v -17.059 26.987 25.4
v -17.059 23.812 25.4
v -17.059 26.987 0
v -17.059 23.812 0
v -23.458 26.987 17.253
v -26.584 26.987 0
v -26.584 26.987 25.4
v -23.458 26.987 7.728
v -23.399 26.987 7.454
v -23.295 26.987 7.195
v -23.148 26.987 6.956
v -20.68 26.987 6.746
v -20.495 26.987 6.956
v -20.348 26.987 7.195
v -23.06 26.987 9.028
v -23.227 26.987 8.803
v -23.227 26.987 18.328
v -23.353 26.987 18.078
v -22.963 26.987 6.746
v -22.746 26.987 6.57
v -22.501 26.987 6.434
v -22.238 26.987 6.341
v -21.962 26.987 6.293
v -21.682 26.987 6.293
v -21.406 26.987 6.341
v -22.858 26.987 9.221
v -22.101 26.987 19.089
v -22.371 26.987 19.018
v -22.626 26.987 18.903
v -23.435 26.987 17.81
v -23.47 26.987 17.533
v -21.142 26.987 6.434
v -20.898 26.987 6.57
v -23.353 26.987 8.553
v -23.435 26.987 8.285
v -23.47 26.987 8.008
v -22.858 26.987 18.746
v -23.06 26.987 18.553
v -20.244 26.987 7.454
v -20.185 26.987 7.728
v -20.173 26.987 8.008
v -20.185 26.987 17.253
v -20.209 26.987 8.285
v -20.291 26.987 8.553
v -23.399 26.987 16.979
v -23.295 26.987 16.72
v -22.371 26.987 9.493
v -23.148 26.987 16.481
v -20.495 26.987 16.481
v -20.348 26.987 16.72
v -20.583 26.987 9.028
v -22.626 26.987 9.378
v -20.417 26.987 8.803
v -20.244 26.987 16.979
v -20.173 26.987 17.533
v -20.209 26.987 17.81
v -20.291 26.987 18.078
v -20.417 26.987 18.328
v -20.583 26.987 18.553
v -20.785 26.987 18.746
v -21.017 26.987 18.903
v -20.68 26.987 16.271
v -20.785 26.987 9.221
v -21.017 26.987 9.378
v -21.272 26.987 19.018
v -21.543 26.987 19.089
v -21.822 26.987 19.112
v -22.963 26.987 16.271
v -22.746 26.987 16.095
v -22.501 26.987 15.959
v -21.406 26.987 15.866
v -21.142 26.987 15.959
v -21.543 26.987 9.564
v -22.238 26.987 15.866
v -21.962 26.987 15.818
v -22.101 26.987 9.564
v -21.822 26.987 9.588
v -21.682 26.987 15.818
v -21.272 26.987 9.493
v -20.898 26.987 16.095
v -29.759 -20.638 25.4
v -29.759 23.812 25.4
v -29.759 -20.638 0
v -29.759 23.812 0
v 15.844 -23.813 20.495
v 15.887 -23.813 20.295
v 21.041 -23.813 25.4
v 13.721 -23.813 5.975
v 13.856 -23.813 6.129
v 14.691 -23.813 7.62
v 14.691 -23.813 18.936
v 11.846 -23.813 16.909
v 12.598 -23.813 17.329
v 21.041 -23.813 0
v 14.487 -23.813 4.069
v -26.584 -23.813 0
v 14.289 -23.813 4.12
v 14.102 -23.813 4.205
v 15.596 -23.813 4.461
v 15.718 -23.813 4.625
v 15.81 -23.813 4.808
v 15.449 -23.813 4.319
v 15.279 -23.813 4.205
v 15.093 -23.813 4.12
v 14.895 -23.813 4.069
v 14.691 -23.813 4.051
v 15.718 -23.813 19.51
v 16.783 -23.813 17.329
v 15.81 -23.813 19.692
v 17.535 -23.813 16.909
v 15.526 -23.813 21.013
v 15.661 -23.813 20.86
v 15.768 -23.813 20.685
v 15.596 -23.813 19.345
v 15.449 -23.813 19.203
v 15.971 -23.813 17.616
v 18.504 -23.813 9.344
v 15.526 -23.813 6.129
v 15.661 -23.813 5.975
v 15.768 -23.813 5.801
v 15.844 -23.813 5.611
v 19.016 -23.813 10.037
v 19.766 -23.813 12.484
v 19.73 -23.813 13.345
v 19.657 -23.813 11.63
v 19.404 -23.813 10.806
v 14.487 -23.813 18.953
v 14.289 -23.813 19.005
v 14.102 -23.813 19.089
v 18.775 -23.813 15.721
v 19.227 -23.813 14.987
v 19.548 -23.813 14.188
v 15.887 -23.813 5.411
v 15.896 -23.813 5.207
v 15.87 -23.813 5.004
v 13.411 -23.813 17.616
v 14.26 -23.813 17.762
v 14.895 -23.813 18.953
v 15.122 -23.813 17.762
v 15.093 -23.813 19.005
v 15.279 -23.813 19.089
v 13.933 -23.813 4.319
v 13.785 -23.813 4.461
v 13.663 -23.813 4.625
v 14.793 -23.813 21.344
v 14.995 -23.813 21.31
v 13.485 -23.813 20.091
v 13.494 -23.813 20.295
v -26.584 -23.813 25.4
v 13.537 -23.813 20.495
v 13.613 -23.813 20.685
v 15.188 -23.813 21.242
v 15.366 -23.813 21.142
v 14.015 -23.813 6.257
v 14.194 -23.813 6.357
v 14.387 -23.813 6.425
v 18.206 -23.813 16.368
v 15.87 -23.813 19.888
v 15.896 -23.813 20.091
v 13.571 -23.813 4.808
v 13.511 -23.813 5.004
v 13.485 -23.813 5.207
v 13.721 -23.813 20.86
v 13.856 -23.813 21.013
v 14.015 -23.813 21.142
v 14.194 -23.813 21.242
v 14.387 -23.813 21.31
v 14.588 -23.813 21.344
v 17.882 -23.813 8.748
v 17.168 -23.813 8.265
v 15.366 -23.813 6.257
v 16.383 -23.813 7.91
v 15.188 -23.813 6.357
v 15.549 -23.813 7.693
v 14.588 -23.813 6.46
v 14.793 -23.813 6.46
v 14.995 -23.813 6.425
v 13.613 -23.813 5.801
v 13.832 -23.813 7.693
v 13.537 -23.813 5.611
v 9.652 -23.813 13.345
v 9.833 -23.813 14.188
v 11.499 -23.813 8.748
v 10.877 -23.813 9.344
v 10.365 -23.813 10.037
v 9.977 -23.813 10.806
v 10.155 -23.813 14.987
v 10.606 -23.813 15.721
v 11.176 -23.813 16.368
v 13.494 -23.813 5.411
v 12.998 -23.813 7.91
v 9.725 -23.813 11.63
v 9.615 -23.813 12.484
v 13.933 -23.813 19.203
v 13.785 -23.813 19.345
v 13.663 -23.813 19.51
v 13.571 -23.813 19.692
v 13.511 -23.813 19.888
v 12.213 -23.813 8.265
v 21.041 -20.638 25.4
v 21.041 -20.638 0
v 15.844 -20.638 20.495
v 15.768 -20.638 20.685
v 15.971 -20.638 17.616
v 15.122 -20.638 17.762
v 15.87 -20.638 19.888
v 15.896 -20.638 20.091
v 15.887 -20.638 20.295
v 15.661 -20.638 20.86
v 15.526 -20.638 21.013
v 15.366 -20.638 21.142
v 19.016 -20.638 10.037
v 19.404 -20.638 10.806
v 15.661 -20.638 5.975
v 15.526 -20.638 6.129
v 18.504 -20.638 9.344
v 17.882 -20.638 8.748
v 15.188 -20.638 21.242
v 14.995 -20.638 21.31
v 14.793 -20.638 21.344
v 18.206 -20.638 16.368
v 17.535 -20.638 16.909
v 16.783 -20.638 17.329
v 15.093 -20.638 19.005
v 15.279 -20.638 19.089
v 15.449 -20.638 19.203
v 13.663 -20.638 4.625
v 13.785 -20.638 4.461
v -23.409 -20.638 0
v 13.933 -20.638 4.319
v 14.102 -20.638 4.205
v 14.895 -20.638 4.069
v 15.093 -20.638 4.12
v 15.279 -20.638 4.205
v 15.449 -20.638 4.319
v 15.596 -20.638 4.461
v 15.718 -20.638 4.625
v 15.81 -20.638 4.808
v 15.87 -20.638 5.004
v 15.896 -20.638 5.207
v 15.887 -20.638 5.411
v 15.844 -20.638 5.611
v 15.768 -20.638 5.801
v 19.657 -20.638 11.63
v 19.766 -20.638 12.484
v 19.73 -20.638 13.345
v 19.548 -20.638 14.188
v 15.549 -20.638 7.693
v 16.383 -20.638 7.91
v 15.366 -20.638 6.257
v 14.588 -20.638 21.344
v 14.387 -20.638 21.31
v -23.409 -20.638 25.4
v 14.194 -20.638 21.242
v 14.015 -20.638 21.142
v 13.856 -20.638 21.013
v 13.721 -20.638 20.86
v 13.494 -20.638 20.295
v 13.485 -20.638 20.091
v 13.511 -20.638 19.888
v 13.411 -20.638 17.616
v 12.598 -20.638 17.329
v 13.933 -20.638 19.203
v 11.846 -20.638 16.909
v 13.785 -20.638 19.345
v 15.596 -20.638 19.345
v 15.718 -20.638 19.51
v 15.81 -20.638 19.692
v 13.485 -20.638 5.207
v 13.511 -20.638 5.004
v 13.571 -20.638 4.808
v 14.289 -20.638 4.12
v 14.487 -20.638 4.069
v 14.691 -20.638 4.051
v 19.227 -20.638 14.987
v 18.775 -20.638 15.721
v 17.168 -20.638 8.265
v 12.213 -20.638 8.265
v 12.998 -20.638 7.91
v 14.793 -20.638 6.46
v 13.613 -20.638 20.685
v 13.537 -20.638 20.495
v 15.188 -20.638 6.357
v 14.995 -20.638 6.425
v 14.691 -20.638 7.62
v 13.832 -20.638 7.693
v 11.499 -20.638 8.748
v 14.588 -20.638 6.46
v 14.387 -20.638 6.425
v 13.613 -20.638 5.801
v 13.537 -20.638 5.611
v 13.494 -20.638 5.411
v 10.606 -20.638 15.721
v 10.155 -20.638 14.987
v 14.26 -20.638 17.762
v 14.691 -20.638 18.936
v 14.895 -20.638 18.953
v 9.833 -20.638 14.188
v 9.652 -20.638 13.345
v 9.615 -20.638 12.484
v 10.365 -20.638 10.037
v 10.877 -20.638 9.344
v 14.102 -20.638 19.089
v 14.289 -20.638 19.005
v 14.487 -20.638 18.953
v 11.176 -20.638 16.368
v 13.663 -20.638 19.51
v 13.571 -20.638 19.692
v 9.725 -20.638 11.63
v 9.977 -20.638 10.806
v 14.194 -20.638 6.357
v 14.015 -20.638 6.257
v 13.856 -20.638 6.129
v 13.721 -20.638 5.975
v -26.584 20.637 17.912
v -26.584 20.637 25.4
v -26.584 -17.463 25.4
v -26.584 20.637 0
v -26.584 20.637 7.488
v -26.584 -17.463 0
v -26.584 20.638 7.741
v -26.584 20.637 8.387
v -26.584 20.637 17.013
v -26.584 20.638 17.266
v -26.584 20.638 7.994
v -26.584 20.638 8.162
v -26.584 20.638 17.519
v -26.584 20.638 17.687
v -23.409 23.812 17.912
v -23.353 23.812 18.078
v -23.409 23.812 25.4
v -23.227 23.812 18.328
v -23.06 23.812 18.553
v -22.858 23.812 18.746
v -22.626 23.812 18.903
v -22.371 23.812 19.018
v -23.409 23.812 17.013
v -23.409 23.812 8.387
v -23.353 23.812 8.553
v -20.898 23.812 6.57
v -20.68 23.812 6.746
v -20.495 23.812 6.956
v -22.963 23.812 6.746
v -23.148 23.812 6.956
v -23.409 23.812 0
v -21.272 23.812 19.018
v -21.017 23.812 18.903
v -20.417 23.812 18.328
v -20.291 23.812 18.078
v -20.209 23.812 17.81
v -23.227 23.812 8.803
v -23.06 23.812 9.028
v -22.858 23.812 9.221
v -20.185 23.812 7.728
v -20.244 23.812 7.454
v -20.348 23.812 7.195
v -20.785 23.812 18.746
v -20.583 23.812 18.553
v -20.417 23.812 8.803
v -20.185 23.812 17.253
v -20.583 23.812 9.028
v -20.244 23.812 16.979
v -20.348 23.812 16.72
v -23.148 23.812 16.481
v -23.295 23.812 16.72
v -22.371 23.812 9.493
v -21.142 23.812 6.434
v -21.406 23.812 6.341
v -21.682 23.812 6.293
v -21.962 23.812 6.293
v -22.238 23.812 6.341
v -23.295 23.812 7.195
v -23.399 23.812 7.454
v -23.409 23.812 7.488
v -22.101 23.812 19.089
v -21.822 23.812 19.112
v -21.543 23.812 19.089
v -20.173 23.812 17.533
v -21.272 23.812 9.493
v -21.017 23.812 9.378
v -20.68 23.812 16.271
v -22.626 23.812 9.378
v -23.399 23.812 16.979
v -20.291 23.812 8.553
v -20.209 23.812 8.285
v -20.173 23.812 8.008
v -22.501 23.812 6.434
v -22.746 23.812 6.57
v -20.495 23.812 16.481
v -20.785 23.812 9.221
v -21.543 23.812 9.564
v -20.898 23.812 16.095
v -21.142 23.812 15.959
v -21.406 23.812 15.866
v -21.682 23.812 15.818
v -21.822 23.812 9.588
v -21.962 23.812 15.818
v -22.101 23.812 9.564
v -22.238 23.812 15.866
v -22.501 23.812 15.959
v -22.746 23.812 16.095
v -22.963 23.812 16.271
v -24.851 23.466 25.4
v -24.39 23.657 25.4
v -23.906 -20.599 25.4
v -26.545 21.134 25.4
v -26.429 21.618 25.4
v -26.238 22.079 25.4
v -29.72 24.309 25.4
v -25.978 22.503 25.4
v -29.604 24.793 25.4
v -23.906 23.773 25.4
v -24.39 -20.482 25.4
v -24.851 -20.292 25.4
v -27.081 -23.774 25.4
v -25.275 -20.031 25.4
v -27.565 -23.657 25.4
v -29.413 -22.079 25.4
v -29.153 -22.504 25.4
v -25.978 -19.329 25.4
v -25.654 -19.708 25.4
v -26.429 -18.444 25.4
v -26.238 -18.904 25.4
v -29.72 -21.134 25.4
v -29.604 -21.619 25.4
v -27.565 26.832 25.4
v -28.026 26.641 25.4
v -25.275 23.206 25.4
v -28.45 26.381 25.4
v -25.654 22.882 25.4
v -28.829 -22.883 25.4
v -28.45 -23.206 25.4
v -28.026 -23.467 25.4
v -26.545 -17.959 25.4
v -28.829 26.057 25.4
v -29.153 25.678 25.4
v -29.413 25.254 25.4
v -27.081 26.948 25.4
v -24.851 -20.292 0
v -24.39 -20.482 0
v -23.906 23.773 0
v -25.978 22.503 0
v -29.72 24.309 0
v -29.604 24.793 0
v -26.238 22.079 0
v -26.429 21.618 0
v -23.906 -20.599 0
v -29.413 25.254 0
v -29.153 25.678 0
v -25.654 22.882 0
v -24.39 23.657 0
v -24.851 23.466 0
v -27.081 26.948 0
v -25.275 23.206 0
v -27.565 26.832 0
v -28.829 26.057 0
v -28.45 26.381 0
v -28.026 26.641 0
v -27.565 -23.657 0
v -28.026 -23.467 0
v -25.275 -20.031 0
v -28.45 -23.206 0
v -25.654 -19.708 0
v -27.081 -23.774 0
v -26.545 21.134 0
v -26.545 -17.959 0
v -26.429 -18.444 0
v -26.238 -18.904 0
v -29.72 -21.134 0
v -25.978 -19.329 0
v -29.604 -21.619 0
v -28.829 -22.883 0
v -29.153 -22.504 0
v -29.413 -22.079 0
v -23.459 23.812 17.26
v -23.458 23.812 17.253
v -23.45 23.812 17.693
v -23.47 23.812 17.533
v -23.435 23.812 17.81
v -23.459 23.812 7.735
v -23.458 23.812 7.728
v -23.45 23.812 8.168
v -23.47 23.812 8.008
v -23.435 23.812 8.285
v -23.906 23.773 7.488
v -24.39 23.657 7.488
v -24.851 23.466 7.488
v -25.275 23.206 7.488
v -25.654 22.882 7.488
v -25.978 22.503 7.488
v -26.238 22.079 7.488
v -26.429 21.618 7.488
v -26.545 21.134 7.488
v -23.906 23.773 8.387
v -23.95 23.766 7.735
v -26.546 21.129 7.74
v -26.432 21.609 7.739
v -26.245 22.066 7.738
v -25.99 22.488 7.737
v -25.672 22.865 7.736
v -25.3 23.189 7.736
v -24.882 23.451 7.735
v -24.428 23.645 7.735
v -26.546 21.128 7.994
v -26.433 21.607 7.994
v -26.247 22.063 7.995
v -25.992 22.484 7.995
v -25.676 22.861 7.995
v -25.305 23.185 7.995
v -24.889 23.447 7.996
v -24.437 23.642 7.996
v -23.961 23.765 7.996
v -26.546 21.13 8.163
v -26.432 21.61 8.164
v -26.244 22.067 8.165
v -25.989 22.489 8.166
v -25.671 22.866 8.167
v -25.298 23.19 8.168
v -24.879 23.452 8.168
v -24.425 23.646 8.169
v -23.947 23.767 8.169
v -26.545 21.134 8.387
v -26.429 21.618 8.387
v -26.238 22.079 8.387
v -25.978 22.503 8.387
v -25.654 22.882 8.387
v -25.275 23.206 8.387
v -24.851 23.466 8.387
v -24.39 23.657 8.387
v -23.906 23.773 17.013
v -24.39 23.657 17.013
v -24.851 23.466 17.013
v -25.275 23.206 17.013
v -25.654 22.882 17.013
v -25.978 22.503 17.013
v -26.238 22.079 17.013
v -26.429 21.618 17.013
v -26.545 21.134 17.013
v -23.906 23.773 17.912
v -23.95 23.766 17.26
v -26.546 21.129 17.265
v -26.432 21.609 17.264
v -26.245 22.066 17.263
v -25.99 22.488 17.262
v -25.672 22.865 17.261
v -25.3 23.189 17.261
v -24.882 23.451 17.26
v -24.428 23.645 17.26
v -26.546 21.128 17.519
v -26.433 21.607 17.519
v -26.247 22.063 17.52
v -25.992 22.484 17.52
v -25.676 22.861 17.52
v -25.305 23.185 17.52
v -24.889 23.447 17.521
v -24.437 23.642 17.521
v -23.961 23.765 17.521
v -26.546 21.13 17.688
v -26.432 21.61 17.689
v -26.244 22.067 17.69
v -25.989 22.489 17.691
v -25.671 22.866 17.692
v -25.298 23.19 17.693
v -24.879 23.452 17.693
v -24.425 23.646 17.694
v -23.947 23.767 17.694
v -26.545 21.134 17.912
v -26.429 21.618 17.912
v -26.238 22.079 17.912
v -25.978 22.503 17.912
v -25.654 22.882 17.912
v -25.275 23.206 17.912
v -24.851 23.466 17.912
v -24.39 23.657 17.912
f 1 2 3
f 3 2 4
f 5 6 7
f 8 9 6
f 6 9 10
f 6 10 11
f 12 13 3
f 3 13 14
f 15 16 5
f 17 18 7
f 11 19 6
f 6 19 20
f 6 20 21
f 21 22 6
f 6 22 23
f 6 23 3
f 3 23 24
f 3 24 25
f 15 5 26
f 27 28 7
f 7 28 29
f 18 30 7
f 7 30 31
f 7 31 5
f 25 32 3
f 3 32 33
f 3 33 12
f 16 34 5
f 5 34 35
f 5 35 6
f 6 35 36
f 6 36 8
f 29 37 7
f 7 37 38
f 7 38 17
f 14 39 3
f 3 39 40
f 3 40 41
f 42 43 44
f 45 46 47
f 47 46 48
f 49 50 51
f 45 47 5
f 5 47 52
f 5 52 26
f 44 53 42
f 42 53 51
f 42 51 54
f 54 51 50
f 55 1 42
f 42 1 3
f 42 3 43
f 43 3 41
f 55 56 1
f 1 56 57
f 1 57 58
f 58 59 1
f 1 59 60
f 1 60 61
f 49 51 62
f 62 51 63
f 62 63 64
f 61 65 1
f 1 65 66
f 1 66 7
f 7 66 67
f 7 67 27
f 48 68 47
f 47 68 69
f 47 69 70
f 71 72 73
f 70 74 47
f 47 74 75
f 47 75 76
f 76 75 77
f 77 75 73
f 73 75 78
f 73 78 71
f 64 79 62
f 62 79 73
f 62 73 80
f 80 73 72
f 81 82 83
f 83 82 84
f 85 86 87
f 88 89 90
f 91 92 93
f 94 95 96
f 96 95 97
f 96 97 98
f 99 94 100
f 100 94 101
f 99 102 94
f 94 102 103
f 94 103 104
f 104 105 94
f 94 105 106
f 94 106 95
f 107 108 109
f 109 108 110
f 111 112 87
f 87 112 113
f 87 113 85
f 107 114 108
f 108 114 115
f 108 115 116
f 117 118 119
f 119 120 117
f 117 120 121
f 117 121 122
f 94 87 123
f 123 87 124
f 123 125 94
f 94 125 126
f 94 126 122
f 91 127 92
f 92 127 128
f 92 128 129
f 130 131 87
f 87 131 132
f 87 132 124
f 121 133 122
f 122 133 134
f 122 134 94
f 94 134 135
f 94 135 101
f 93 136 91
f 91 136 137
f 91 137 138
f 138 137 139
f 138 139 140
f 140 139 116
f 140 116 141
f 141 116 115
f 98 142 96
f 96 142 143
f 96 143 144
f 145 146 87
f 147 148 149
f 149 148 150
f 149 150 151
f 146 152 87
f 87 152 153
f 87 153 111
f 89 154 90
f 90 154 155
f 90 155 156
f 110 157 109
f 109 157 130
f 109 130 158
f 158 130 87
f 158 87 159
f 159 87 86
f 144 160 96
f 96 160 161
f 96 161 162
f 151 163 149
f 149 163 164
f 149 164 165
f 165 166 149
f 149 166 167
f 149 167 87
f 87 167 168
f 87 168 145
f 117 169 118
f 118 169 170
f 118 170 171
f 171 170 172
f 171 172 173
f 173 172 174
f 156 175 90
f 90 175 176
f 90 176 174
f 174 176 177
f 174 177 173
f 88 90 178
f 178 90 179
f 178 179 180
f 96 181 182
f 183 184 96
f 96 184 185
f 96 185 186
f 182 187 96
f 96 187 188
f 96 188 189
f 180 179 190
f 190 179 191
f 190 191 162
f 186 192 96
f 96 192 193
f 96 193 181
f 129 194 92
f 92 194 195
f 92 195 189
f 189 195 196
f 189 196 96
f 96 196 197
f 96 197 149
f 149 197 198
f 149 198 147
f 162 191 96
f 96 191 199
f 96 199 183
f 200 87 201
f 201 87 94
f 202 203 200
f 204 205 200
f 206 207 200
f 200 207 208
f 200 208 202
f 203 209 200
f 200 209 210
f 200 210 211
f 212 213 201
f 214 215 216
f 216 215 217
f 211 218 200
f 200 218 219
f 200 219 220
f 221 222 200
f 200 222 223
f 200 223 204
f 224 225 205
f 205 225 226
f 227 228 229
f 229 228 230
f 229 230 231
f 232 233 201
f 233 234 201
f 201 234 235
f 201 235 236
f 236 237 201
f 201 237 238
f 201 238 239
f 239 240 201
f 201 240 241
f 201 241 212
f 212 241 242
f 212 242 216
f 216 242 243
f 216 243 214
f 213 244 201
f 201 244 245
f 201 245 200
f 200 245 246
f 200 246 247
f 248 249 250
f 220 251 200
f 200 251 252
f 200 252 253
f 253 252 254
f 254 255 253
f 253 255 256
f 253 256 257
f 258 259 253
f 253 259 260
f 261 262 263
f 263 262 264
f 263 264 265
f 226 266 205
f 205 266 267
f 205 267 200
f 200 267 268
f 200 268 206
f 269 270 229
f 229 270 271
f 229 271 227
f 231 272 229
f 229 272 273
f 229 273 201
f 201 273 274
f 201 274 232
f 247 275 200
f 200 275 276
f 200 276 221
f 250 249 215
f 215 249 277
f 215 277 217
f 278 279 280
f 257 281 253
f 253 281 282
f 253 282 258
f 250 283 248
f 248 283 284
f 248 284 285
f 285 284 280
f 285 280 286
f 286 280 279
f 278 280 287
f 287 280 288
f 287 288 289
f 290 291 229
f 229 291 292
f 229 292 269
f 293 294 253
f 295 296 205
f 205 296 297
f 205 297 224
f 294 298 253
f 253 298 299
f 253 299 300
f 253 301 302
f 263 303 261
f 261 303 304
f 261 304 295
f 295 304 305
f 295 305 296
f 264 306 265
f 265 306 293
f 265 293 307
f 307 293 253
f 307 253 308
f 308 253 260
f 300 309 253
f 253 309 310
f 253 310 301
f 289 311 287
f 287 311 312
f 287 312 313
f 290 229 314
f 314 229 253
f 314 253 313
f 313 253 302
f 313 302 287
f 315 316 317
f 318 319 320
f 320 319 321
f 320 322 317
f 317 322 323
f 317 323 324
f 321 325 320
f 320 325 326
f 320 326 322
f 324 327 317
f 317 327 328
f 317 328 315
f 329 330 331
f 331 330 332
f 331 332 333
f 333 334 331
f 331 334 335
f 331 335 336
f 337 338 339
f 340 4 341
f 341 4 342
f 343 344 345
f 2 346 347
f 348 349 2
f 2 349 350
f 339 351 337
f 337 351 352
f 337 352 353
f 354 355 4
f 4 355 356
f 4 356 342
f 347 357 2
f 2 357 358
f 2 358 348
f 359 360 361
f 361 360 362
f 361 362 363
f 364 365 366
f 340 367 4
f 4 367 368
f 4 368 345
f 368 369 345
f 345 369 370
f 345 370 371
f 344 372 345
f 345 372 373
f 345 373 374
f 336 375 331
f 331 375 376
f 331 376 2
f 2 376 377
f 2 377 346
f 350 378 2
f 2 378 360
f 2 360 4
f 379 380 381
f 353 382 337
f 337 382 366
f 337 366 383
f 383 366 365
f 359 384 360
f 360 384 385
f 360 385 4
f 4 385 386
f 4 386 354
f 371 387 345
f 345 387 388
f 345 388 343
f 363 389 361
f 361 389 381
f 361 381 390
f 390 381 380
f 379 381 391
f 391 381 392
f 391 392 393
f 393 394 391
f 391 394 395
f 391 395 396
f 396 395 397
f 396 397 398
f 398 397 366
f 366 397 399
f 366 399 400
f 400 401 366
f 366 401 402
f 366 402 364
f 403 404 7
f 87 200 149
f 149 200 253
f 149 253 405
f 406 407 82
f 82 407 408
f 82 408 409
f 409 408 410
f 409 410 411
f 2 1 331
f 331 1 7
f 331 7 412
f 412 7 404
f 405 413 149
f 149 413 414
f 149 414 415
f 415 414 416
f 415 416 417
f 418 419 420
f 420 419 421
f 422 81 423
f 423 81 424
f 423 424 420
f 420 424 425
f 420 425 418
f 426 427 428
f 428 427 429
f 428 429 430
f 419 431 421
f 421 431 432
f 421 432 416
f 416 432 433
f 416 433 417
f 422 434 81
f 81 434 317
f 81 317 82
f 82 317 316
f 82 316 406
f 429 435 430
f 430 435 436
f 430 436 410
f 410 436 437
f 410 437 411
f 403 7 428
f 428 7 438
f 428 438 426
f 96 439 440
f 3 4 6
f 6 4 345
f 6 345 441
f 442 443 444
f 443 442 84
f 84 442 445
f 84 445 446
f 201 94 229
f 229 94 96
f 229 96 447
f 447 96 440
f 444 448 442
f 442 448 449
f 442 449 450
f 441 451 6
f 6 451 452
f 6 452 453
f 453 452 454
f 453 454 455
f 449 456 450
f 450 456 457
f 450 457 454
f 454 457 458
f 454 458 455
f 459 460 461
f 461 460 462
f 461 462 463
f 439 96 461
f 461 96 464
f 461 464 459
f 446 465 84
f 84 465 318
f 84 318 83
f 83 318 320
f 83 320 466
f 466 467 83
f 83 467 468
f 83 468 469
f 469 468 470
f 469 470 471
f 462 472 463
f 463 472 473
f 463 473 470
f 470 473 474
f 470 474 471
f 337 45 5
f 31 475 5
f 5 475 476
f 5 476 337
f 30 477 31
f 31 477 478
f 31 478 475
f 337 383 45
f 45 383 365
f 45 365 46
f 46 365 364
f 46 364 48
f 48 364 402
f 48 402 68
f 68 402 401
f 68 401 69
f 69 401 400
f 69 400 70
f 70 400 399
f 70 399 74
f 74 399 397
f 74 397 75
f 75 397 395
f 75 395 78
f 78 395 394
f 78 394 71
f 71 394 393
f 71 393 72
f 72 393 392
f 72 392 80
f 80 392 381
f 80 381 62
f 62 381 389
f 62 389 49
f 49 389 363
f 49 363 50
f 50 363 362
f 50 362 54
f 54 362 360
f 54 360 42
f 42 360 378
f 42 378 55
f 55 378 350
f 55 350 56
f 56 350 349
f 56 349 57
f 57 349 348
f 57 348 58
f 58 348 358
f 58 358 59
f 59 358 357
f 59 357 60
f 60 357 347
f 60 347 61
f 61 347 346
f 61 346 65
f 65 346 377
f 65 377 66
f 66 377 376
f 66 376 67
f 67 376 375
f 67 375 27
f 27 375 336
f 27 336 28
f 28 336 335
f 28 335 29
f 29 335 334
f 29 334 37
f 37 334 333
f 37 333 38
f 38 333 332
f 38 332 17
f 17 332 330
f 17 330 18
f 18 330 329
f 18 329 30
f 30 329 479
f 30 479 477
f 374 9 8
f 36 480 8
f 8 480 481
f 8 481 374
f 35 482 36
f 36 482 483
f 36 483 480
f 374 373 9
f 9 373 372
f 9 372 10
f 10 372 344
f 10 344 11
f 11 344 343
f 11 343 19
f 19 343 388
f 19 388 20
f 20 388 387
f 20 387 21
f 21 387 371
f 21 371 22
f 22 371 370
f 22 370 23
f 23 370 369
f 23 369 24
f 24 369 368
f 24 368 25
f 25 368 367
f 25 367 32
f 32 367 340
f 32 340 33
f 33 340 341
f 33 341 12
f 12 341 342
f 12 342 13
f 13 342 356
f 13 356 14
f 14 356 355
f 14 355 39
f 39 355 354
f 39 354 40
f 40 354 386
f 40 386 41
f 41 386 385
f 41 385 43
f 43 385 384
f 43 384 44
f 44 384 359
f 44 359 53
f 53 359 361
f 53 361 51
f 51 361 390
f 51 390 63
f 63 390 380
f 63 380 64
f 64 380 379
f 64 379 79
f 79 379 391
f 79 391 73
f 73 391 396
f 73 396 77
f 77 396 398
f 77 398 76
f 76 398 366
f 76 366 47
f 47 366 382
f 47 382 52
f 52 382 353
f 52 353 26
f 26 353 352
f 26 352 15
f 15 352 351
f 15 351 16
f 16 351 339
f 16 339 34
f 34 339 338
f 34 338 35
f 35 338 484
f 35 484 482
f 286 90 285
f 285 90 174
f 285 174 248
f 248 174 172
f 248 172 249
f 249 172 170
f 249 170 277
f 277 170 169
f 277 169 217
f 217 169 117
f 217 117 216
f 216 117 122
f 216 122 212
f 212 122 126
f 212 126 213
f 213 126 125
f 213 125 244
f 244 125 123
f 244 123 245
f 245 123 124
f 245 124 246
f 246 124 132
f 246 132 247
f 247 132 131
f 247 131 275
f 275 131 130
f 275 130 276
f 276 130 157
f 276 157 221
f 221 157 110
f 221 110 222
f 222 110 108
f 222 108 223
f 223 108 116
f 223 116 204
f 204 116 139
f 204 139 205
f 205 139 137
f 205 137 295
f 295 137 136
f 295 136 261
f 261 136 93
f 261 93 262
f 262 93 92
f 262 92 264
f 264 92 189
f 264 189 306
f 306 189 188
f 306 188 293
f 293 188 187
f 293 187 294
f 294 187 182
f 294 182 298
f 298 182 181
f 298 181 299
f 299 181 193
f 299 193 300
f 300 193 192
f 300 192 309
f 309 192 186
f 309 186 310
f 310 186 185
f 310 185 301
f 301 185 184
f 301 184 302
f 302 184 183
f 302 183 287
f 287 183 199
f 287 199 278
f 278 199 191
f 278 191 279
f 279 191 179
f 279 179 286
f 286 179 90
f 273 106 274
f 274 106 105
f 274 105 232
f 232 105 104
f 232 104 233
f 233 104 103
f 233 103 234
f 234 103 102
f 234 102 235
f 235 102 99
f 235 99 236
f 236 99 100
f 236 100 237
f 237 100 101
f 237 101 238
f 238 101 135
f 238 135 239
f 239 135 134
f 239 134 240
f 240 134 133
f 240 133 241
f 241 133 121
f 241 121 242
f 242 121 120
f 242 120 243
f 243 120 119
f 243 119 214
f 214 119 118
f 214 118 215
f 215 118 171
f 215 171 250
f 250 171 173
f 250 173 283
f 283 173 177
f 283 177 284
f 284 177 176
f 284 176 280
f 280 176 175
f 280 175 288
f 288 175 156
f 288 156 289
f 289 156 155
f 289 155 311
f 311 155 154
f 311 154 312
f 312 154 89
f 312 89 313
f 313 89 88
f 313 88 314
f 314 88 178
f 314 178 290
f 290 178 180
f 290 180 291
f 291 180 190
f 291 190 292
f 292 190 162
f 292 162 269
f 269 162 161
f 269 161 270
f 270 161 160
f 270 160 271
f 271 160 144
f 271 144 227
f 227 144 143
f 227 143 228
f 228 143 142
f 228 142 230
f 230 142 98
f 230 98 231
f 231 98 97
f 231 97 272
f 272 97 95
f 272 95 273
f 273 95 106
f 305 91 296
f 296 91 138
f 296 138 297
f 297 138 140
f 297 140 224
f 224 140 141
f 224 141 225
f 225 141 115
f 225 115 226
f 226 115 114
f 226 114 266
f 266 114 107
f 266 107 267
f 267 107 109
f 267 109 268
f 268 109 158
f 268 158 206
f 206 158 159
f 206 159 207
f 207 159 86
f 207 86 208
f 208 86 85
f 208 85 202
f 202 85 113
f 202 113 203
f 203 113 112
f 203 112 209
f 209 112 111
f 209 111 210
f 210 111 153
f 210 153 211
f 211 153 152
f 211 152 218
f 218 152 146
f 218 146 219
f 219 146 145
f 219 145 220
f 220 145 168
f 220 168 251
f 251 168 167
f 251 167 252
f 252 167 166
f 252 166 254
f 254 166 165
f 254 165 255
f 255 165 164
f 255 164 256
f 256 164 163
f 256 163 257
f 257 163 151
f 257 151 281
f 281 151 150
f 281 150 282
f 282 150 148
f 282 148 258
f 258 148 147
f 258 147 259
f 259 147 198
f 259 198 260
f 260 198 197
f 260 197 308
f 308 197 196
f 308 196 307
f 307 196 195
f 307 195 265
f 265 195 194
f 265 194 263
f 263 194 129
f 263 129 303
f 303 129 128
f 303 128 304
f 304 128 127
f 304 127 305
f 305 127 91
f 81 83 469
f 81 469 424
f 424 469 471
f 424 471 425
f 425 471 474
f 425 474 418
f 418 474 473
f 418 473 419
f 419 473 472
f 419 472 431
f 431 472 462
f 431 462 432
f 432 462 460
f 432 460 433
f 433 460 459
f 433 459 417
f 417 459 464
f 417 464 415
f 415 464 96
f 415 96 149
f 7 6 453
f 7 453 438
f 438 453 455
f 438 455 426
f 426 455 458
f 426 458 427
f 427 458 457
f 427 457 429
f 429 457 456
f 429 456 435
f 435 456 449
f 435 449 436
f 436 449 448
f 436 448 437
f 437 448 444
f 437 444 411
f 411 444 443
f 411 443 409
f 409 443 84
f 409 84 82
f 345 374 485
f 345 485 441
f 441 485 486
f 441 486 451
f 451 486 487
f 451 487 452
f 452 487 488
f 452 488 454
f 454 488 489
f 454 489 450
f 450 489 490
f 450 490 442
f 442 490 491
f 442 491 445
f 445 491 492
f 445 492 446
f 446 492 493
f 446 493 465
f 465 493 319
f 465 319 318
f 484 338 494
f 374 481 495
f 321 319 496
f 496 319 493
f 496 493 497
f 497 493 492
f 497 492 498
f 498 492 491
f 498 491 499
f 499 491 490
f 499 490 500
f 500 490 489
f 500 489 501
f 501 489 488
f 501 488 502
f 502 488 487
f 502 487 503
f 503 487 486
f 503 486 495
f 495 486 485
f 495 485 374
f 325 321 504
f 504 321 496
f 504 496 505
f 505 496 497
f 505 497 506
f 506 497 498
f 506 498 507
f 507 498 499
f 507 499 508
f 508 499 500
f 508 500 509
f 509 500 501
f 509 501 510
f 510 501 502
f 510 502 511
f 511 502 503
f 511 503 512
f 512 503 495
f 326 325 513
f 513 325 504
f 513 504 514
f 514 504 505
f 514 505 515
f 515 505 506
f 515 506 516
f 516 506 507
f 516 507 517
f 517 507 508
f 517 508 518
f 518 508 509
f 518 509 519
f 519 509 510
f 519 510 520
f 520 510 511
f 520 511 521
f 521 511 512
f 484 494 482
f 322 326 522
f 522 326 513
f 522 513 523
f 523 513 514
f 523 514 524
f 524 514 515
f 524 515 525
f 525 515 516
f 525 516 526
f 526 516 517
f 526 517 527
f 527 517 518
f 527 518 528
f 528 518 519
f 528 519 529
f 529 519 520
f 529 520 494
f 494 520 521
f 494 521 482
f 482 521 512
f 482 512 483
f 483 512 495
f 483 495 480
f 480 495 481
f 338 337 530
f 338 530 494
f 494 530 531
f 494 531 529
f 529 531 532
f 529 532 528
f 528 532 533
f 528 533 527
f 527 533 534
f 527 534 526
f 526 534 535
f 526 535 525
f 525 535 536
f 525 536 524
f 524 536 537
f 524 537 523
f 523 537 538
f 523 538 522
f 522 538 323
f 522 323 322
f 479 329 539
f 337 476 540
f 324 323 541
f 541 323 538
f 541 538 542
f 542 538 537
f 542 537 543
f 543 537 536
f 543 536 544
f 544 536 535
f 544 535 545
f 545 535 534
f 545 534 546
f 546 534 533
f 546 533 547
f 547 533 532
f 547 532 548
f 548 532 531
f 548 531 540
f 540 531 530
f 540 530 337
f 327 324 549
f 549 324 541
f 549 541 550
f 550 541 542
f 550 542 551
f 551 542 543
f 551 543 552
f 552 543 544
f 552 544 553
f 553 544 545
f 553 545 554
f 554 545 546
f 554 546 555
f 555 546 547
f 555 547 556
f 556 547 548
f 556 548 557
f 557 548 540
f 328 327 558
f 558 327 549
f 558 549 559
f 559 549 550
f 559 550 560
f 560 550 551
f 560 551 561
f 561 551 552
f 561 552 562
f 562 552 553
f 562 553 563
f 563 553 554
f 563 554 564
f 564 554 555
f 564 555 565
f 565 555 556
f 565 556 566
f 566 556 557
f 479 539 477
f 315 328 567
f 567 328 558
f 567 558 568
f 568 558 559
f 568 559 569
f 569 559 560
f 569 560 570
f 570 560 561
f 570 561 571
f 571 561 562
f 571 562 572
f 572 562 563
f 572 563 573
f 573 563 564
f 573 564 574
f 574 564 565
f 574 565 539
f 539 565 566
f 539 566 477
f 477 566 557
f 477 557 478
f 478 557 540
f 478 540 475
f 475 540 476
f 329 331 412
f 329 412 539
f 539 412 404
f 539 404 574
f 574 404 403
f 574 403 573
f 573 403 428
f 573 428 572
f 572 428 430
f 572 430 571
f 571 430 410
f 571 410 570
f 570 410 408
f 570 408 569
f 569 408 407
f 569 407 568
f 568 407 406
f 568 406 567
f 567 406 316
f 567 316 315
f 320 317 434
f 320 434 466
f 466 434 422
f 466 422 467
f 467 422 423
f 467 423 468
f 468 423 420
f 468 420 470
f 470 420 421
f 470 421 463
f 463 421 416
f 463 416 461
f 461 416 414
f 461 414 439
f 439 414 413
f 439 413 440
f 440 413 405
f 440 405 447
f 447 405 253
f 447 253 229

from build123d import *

# Parameters (mm, degrees)
BOSS_EXTRUDE1_DEPTH       = 25.4
M4X0_7_TAPPED_HOLE1_D     = 3.3
M4X0_7_TAPPED_HOLE1_DEPTH = 9.906
M4X0_7_TAPPED_HOLE1_TIP   = 0.991420021
CUT_EXTRUDE1_REACH        = 66.12
SKETCH7_R                 = 5.08
SKETCH7_R_2               = 1.2065
FILLET1_R                 = 3.175
FILLET2_R                 = 3.175


with BuildPart() as part:
    # Sketch1 → Boss-Extrude1 (new body)
    with BuildSketch(Plane.XY):
        Polygon((-17.059275079, 26.987213855), (-29.759275079, 26.987213855), (-29.759275079, -23.812786145), (21.040724921, -23.812786145), (21.040724921, -20.637786145), (-26.584275079, -20.637786145), (-26.584275079, 23.812213855), (-17.059275079, 23.812213855), align=None)
    extrude(amount=BOSS_EXTRUDE1_DEPTH)

    # M4x0.7 Tapped Hole1
    with Locations(Plane(origin=(0, 26.987213855, 0), x_dir=(1, 0, 0), z_dir=(0, 1, 0))):
        with Locations((-21.821775079, -7.9375), (-21.821775079, -17.4625)):
            Hole(M4X0_7_TAPPED_HOLE1_D / 2, depth=M4X0_7_TAPPED_HOLE1_DEPTH)
            with Locations((0, 0, -(M4X0_7_TAPPED_HOLE1_DEPTH + M4X0_7_TAPPED_HOLE1_TIP / 2))):  # 118° drill point
                Cone(0, M4X0_7_TAPPED_HOLE1_D / 2, M4X0_7_TAPPED_HOLE1_TIP, mode=Mode.SUBTRACT)

    # Sketch7 → Cut-Extrude1 (cut, up to next)
    with BuildSketch(Plane.XZ.offset(23.812786145), mode=Mode.PRIVATE) as cut_extrude1_sk1:
        with Locations(Location((14.690724921, 12.7, 0), (0, 0, 270))):
            Circle(SKETCH7_R)
    cut_extrude1_tool1 = extrude(cut_extrude1_sk1.sketch, amount=-CUT_EXTRUDE1_REACH, mode=Mode.PRIVATE) & part.part
    # Sketch7 → Cut-Extrude1 (cut, up to next)
    with BuildSketch(Plane.XZ.offset(23.812786145), mode=Mode.PRIVATE) as cut_extrude1_sk2:
        with Locations(Location((14.690724921, 5.2578, 0), (0, 0, 270))):
            Circle(SKETCH7_R_2)
    cut_extrude1_tool2 = extrude(cut_extrude1_sk2.sketch, amount=-CUT_EXTRUDE1_REACH, mode=Mode.PRIVATE) & part.part
    # Sketch7 → Cut-Extrude1 (cut, up to next)
    with BuildSketch(Plane.XZ.offset(23.812786145), mode=Mode.PRIVATE) as cut_extrude1_sk3:
        with Locations(Location((14.690724921, 20.1422, 0), (0, 0, 270))):
            Circle(SKETCH7_R_2)
    cut_extrude1_tool3 = extrude(cut_extrude1_sk3.sketch, amount=-CUT_EXTRUDE1_REACH, mode=Mode.PRIVATE) & part.part
    add(cut_extrude1_tool1.solids().sort_by_distance((14.690725, -23.812786, 12.7))[0], mode=Mode.SUBTRACT)
    add(cut_extrude1_tool2.solids().sort_by_distance((14.690725, -23.812786, 5.2578))[0], mode=Mode.SUBTRACT)
    add(cut_extrude1_tool3.solids().sort_by_distance((14.690725, -23.812786, 20.1422))[0], mode=Mode.SUBTRACT)

    # Fillet1
    fillet1_edges = [part.edges().sort_by_distance(p)[0] for p in [
        (-29.759275079, -23.812786145, 12.7),
        (-29.759275079, 26.987213855, 12.7),
    ]]
    fillet(fillet1_edges, radius=FILLET1_R)

    # Fillet2
    fillet2_edges = [part.edges().sort_by_distance(p)[0] for p in [
        (-26.584275079, 23.812213855, 12.7),
        (-26.584275079, -20.637786145, 12.7),
    ]]
    fillet(fillet2_edges, radius=FILLET2_R)


solid = part.part
